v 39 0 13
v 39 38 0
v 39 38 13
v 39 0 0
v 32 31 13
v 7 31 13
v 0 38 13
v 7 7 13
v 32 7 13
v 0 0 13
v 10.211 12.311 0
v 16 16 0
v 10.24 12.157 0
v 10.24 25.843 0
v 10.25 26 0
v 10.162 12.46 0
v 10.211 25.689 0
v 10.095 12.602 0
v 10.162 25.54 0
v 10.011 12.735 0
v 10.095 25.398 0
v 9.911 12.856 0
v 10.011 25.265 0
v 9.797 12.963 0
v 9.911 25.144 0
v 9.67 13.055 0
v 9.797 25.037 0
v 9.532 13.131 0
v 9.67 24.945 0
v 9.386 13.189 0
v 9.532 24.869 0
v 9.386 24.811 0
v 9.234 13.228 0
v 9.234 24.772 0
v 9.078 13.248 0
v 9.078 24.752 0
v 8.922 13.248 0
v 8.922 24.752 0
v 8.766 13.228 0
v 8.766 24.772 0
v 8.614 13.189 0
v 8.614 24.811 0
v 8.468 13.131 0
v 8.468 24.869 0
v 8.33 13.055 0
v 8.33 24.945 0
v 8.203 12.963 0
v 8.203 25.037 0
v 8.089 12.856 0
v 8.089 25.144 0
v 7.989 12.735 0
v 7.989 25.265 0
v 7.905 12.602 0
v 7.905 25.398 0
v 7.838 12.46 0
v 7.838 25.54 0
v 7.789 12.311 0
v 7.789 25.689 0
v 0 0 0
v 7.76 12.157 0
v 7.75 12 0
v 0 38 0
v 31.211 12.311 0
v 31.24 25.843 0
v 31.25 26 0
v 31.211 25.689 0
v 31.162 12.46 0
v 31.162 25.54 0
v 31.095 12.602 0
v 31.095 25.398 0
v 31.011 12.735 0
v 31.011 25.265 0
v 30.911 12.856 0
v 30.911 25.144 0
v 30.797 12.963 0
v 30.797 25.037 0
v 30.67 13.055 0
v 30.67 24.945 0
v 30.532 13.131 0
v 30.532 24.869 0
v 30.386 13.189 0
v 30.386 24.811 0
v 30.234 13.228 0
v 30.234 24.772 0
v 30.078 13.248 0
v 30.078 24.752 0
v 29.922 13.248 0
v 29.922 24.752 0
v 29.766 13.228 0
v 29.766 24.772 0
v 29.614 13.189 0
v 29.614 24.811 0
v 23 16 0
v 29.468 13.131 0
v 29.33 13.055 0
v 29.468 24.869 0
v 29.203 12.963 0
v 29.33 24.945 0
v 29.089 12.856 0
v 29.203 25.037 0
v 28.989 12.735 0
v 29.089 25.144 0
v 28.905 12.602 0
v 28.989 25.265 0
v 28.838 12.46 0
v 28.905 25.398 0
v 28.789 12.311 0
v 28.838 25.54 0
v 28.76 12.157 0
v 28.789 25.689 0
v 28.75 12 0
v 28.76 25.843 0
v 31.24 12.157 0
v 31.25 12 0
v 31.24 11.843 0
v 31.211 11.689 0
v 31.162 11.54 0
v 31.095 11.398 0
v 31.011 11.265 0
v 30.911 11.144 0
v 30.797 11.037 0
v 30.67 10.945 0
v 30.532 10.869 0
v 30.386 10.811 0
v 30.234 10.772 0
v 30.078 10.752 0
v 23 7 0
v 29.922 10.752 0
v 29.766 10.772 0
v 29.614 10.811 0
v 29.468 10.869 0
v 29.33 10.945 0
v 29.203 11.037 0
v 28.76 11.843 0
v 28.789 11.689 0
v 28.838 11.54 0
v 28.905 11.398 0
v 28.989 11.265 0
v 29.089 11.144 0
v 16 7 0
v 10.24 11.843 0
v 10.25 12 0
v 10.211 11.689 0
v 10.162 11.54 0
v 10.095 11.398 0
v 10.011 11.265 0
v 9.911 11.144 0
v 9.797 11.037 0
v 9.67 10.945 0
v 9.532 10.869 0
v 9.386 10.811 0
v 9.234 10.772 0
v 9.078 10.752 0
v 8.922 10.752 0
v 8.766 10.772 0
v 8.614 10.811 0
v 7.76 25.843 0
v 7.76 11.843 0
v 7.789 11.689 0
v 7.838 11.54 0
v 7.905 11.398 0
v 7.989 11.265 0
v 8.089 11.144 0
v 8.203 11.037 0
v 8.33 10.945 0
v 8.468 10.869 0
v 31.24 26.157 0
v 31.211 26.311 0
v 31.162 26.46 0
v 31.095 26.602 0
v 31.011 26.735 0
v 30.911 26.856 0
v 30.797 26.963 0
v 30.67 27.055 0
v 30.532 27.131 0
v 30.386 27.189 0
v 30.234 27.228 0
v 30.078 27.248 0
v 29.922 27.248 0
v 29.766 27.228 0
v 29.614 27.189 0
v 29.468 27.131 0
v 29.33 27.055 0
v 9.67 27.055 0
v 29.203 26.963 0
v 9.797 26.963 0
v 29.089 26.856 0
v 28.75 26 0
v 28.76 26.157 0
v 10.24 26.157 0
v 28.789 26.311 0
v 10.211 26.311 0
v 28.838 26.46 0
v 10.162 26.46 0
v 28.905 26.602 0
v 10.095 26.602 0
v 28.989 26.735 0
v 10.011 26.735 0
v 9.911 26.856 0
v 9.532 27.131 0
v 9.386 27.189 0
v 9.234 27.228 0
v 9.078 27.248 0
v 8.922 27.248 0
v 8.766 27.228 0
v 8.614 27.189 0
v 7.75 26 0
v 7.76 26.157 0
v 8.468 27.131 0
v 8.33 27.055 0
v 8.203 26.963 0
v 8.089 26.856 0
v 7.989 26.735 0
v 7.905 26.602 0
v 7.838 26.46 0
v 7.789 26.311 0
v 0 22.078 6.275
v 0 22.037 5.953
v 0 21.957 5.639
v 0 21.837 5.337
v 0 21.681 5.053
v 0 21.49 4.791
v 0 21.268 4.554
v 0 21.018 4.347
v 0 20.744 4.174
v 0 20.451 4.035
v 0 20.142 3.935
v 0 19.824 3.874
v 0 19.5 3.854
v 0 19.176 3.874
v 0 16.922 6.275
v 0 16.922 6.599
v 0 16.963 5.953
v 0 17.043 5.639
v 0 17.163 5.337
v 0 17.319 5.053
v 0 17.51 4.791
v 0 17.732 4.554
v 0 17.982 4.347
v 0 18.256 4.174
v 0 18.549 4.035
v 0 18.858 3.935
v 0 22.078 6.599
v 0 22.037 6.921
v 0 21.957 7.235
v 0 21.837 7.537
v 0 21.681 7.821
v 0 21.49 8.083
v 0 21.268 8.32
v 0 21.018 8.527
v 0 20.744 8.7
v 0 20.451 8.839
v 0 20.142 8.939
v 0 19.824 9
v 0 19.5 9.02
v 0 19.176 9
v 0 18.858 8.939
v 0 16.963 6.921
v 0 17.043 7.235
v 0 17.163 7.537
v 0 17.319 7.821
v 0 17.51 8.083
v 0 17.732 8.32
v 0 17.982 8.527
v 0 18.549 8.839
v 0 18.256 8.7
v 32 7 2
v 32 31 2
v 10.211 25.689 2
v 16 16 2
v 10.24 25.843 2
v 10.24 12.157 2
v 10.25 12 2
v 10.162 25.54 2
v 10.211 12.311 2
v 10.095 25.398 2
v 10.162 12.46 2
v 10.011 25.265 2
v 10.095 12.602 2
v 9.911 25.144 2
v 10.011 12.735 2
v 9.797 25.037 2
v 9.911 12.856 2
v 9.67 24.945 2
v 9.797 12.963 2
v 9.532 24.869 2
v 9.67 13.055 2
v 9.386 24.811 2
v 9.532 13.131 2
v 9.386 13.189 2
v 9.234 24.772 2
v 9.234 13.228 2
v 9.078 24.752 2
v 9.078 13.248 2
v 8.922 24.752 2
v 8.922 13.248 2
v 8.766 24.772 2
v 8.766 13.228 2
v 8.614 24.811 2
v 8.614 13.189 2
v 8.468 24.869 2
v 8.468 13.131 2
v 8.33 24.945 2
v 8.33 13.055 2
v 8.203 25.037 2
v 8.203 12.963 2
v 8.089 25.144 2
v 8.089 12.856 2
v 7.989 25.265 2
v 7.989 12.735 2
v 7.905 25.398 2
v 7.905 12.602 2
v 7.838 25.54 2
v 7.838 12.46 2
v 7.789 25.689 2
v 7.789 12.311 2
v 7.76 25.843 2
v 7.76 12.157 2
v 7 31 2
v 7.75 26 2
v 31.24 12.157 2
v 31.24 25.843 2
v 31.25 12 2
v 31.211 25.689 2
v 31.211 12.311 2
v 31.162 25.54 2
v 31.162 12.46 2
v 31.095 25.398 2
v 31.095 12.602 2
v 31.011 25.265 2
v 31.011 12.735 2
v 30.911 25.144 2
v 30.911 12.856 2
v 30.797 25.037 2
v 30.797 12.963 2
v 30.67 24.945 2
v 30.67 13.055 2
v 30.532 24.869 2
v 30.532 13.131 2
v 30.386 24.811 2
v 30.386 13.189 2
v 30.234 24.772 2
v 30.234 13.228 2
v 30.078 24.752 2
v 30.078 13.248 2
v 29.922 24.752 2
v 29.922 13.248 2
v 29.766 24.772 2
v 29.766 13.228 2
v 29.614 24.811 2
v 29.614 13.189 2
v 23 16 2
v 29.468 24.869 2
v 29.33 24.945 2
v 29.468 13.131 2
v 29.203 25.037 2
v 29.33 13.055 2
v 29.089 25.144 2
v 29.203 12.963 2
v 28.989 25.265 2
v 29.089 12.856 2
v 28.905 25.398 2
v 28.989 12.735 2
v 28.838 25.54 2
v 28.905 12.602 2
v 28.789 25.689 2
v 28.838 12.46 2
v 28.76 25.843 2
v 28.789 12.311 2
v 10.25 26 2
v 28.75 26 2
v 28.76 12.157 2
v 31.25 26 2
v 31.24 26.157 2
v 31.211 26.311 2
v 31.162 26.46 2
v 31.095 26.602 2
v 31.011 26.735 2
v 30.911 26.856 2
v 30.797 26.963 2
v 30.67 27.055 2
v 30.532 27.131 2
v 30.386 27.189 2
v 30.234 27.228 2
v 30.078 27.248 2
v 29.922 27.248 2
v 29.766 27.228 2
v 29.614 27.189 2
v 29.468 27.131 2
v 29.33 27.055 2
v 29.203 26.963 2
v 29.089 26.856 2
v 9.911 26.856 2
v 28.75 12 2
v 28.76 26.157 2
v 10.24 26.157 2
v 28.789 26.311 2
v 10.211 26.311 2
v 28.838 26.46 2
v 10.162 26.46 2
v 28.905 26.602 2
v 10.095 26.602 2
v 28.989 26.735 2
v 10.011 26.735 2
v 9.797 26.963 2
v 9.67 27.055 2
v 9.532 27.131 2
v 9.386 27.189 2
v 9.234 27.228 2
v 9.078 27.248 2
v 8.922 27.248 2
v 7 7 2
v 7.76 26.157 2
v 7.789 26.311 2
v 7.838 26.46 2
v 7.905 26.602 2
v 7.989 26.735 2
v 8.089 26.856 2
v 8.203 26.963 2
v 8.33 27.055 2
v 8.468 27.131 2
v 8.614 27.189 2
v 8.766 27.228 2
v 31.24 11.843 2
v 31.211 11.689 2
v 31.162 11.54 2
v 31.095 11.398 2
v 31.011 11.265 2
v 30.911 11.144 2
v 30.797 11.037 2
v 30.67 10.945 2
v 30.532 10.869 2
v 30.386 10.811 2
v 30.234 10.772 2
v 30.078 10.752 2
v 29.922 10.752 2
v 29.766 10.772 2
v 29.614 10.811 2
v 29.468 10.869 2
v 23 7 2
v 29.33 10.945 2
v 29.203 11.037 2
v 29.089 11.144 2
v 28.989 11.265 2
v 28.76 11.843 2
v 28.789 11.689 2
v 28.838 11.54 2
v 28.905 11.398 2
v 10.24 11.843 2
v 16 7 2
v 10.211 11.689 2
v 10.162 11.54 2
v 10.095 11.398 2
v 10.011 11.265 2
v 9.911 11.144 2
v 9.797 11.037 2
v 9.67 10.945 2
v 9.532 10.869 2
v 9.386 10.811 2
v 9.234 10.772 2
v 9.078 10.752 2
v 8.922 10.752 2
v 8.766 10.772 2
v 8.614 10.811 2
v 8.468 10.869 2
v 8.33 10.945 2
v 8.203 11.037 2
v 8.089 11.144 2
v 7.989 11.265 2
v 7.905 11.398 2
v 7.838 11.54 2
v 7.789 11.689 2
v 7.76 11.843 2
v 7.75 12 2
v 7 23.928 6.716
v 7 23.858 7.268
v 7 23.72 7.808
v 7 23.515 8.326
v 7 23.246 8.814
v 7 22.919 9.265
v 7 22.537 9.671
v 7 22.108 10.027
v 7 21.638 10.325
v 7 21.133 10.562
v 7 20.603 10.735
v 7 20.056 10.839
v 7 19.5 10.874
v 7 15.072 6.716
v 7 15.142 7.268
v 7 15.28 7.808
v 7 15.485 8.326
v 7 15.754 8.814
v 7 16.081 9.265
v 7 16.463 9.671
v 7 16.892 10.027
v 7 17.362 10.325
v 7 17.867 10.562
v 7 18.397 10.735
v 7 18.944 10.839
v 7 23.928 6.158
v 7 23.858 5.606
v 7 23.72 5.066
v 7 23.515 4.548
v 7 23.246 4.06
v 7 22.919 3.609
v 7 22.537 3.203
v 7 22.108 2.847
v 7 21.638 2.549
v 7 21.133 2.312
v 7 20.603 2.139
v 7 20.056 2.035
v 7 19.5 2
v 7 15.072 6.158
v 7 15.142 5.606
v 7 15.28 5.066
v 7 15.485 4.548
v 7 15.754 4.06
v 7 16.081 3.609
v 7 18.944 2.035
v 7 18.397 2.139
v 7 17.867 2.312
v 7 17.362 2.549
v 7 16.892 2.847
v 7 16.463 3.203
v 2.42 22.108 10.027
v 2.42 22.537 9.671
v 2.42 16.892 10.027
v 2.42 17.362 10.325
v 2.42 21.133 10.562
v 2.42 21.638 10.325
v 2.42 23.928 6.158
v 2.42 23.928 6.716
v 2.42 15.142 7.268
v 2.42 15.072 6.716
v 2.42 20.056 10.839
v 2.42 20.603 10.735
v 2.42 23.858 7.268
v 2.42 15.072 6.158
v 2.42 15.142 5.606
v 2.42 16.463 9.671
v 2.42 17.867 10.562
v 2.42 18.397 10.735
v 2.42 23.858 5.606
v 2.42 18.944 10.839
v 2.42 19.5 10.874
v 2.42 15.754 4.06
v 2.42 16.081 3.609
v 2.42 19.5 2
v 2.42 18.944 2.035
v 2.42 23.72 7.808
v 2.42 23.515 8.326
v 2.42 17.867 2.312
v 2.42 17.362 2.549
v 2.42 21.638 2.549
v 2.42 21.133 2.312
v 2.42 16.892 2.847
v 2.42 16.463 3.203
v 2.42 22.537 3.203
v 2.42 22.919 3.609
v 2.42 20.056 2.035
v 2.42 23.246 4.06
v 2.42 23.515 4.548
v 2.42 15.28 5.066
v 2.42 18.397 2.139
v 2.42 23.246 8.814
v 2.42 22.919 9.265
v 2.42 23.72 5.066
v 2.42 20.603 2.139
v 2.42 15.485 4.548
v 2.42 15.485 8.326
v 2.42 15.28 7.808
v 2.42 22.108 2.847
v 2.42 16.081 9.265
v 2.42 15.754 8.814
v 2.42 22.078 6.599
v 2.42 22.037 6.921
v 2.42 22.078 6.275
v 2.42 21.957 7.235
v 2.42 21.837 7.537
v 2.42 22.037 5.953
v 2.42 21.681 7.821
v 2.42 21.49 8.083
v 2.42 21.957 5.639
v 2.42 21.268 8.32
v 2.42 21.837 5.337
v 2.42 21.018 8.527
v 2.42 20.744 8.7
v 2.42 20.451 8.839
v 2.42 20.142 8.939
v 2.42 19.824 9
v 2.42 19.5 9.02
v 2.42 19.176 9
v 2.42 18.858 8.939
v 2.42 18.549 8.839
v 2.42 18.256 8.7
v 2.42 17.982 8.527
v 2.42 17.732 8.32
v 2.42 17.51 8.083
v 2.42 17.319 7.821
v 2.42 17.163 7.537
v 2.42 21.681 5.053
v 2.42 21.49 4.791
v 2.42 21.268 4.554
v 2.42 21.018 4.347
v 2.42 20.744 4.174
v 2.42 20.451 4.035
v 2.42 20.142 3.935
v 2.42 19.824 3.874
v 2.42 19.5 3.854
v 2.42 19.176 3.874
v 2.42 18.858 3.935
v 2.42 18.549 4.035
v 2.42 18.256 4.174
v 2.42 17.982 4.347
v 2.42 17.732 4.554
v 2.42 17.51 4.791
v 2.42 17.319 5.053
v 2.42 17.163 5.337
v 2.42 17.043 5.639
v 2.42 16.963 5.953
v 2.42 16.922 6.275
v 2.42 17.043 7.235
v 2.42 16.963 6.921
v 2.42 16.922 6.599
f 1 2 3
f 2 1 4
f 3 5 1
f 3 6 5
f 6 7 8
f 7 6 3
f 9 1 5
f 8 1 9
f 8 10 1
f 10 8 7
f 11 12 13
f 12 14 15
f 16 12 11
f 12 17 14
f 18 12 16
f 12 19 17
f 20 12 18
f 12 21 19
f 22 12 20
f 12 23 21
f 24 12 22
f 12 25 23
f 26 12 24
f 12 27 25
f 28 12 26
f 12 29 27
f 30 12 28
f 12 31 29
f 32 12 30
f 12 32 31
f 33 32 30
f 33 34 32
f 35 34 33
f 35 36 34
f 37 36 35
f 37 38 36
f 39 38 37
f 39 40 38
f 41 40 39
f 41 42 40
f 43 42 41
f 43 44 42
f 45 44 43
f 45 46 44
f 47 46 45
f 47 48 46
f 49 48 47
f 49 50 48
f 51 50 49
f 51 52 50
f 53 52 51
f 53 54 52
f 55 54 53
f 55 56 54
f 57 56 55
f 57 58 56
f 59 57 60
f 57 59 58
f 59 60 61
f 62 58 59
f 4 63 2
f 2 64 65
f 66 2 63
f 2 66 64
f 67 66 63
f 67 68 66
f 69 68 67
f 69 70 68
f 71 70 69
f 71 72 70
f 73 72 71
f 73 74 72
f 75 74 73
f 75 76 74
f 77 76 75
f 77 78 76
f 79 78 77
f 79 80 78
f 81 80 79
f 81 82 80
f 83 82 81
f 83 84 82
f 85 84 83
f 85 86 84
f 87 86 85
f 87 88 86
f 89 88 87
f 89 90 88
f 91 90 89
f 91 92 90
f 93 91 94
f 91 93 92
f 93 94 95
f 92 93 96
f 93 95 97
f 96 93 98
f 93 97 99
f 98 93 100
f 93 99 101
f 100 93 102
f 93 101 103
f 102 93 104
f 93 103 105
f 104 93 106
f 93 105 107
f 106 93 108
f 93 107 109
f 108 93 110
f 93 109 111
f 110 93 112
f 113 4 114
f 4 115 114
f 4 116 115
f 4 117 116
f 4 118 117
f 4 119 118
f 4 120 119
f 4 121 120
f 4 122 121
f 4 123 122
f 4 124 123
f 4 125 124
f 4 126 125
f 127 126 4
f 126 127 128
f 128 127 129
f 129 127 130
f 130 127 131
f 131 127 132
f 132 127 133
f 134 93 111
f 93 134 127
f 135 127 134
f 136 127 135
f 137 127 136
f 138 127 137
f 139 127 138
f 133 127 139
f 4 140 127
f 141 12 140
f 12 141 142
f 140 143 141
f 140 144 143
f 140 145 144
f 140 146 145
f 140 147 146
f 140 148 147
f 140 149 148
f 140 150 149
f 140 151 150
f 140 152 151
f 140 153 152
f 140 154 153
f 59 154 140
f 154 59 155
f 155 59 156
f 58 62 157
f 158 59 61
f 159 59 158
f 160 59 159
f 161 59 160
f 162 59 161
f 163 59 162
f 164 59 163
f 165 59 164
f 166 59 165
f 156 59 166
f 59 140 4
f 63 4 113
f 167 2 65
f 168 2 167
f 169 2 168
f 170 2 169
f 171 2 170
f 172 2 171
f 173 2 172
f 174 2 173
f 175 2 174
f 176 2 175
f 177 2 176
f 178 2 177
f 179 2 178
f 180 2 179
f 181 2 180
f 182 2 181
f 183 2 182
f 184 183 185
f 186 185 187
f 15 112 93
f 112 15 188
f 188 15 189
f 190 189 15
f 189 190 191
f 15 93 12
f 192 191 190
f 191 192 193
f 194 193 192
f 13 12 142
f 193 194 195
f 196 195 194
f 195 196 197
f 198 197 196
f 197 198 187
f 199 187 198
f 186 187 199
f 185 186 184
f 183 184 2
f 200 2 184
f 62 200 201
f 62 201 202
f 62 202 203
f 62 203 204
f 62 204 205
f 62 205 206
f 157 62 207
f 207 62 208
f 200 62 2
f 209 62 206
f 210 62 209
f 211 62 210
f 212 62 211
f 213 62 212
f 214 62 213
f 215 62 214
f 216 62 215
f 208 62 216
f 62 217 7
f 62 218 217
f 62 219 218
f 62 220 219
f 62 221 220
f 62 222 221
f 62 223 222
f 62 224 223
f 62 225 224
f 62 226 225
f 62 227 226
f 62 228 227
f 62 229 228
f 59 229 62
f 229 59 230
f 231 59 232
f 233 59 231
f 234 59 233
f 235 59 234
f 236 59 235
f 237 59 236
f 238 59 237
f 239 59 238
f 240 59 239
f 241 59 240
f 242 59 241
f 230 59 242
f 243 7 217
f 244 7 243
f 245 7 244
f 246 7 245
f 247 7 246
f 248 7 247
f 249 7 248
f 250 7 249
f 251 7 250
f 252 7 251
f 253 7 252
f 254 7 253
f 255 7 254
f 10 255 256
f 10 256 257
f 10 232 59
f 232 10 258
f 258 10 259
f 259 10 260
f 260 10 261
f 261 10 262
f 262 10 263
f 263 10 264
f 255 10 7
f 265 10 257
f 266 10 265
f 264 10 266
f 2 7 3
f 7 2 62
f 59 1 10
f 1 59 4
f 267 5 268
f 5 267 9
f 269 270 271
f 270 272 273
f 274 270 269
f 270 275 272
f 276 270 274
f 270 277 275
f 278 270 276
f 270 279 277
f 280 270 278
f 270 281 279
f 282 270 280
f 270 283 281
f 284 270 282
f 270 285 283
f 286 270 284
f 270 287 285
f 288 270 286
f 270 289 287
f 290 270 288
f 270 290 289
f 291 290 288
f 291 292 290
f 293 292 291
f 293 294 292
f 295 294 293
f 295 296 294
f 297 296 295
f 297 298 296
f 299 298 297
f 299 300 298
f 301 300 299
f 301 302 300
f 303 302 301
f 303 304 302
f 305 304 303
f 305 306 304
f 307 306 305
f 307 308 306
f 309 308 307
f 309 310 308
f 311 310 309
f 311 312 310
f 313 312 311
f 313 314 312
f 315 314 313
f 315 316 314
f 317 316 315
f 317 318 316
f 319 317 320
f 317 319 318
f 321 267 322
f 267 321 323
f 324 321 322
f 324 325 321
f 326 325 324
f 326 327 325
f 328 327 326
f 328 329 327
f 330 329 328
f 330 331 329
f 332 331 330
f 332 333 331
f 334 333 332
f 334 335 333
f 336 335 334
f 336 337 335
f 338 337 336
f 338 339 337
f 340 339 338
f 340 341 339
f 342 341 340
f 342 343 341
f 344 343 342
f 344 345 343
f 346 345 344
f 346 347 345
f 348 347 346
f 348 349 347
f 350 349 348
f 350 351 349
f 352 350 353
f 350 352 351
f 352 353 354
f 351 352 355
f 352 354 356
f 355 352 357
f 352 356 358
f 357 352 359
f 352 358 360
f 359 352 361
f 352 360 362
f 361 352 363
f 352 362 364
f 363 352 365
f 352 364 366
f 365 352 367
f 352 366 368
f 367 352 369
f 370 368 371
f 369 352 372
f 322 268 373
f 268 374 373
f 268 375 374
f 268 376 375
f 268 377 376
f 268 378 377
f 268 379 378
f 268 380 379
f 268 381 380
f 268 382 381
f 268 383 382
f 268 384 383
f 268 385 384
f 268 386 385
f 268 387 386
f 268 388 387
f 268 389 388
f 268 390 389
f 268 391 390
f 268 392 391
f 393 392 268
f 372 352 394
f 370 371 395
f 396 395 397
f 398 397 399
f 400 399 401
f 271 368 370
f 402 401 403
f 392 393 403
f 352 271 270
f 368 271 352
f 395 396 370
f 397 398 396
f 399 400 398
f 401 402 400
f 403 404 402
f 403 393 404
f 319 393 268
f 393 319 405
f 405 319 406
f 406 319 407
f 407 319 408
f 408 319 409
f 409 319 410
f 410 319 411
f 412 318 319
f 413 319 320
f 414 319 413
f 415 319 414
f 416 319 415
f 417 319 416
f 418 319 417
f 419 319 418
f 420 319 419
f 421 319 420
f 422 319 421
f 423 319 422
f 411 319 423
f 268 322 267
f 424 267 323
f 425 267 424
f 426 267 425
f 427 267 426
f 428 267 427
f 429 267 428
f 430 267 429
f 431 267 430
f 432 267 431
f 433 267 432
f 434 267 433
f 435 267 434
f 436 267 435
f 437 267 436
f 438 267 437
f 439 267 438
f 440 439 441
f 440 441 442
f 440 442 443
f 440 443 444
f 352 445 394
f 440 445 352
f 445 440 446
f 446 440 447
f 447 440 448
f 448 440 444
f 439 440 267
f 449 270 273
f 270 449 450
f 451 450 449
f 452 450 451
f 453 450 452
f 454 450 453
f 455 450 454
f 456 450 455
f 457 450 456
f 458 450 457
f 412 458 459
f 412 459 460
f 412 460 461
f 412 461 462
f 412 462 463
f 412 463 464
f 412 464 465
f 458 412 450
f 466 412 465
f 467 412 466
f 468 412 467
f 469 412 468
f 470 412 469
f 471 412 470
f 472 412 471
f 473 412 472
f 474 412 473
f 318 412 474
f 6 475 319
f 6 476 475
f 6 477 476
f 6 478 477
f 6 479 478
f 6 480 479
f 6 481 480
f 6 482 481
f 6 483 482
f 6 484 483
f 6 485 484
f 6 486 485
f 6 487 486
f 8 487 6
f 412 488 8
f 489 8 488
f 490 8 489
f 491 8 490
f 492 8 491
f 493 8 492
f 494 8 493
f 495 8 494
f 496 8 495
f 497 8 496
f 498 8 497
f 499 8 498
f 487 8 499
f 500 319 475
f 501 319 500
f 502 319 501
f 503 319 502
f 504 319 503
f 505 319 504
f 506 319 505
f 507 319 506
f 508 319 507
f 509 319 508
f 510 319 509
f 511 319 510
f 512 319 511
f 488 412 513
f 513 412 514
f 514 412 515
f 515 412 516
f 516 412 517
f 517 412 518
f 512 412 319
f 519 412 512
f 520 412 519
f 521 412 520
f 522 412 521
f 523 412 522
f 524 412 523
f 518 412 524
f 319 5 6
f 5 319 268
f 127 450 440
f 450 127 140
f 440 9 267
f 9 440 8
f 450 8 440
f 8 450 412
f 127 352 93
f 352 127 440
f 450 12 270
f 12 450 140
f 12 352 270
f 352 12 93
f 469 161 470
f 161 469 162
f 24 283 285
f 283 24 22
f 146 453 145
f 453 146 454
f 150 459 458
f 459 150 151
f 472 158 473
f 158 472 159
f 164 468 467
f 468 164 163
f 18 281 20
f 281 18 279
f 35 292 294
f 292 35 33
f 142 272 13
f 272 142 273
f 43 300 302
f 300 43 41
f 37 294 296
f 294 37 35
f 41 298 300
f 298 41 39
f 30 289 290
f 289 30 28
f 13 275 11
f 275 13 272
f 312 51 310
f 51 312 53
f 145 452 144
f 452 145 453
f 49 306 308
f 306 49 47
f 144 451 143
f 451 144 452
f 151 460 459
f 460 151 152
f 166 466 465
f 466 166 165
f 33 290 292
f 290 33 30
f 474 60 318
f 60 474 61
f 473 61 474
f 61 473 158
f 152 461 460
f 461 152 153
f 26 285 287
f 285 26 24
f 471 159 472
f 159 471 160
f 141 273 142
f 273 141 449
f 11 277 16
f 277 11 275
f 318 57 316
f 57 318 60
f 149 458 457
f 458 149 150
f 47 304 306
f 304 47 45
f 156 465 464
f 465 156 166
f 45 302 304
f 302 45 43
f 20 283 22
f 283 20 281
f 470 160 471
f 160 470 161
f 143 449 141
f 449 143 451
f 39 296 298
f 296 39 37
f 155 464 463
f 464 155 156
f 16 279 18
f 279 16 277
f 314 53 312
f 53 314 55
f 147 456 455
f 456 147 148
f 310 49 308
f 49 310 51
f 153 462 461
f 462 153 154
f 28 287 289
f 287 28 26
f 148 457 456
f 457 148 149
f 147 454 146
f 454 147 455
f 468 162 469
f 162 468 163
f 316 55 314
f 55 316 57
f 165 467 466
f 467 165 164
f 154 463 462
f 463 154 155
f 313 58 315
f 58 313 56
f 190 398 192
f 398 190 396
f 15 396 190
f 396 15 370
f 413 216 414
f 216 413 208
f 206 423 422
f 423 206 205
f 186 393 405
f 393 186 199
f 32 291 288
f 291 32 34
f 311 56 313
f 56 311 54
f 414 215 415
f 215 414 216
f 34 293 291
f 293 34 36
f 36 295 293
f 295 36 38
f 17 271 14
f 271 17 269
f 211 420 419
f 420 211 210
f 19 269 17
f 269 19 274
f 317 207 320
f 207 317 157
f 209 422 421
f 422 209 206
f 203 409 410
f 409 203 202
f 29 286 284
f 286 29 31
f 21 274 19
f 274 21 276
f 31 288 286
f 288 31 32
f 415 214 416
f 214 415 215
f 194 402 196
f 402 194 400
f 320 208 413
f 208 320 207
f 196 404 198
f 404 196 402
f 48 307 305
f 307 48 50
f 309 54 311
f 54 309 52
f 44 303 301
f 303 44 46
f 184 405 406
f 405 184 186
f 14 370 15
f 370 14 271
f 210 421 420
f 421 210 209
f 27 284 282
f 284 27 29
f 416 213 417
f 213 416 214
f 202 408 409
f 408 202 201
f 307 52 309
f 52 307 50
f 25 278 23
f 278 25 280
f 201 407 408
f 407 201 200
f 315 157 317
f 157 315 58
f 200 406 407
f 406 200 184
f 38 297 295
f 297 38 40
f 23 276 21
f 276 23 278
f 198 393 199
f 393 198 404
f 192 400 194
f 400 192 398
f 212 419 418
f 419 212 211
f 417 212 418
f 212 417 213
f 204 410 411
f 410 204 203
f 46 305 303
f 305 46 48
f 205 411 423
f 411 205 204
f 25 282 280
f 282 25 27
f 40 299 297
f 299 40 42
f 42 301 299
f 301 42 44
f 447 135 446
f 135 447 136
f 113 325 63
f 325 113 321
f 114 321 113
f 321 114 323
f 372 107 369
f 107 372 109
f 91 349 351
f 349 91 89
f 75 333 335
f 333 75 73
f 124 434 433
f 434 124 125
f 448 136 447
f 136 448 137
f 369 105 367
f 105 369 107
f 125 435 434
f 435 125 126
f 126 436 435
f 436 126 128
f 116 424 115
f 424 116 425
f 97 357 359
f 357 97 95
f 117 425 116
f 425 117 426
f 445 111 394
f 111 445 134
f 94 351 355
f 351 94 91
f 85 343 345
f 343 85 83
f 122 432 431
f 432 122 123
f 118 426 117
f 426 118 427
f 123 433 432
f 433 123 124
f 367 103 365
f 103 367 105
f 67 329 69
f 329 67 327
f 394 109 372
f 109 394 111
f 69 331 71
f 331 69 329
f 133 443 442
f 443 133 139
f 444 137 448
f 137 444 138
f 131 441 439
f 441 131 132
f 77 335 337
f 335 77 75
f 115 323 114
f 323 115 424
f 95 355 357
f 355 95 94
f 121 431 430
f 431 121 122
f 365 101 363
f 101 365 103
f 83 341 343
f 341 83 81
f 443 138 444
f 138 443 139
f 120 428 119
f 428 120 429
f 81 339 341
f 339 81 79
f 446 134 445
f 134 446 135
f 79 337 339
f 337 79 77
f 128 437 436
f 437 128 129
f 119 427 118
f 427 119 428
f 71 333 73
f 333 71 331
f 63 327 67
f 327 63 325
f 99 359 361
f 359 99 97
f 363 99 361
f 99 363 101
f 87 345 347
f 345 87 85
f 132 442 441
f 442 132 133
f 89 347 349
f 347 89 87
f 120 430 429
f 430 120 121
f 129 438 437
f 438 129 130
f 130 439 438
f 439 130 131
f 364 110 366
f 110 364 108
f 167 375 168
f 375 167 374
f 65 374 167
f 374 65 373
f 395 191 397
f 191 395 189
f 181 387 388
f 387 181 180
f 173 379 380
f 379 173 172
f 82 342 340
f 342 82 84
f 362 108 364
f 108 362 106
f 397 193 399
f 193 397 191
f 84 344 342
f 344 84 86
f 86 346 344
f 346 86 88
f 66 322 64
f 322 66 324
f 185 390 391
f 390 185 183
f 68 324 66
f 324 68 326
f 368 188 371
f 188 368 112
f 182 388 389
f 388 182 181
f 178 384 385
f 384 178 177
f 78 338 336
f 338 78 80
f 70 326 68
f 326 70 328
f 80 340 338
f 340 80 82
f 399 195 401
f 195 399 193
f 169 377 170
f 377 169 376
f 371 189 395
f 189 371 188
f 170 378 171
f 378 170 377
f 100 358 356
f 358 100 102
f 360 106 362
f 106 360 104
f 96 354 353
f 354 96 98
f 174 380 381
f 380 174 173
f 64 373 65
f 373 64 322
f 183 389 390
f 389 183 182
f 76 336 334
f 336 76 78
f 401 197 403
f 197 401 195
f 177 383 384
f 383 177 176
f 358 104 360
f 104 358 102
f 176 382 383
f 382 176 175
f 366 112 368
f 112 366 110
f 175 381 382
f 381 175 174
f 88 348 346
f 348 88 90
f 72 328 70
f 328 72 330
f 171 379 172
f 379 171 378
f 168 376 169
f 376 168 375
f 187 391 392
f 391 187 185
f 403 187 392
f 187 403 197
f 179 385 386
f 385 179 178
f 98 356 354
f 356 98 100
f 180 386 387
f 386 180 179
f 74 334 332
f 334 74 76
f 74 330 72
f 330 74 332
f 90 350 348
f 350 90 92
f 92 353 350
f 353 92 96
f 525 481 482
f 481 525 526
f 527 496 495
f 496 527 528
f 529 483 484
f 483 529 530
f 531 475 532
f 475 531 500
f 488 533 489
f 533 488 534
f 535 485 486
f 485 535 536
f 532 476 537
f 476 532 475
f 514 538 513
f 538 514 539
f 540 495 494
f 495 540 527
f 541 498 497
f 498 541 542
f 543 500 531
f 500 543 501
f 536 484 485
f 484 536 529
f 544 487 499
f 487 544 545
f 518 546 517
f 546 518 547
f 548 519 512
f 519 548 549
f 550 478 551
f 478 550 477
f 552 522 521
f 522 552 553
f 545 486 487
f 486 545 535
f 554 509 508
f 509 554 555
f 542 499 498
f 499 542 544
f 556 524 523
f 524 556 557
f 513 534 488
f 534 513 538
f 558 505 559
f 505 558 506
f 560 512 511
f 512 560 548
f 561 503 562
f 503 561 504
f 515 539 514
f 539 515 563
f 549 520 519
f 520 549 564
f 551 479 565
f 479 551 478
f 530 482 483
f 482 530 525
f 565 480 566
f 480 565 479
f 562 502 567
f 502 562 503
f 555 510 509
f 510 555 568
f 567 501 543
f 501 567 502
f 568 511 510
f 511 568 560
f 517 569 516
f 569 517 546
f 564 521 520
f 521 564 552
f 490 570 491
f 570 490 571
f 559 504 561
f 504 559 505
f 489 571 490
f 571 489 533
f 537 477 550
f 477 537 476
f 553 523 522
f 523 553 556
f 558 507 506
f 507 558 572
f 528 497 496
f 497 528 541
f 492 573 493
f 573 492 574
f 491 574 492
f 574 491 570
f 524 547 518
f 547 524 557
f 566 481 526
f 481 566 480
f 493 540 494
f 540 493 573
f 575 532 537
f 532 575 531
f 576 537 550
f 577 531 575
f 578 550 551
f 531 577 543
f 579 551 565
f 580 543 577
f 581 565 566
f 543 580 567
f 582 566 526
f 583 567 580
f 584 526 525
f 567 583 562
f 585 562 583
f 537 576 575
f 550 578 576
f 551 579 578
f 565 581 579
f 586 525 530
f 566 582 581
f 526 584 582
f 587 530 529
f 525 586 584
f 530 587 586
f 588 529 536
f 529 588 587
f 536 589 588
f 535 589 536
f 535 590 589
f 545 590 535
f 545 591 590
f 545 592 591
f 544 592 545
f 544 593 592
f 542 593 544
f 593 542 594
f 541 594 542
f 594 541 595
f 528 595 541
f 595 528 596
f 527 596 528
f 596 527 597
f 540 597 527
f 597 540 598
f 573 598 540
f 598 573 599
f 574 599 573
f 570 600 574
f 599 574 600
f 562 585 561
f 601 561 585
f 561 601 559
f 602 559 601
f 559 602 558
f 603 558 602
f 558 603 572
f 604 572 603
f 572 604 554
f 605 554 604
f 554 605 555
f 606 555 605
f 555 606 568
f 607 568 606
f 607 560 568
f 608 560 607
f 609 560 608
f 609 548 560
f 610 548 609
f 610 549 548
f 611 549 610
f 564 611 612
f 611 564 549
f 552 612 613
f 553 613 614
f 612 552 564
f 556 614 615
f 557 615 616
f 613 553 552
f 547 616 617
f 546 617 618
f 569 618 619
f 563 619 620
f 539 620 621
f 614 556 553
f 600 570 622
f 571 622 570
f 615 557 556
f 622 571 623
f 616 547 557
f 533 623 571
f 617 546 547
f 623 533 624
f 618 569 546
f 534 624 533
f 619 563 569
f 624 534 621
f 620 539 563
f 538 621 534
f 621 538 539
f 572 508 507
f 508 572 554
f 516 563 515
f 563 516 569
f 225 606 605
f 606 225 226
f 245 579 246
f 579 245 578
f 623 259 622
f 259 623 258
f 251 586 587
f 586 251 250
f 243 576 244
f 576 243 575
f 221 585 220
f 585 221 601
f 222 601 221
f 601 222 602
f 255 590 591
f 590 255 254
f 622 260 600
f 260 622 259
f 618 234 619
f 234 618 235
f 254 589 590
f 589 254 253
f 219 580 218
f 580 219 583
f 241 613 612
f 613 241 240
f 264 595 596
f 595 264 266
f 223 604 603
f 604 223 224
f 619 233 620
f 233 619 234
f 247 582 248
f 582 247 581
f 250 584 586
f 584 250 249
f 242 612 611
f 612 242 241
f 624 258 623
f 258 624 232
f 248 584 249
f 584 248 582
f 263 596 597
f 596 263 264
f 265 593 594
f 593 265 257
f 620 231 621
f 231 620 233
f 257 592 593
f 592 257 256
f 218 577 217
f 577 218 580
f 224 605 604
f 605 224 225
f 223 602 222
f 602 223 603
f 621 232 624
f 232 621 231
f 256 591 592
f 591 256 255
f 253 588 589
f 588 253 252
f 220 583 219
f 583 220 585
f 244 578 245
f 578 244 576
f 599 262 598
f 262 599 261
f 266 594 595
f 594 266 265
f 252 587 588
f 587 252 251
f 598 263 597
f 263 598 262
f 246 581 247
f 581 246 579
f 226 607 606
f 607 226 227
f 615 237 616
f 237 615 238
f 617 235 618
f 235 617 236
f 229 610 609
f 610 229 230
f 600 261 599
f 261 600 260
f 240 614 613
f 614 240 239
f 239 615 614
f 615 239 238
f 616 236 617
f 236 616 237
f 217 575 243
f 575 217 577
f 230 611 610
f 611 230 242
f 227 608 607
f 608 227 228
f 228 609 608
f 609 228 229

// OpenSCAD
// Parameters for Raspberry Pi Camera V2.1
camera_width = 25;
camera_height = 24;
camera_thickness = 9+2;

// Enclosure Parameters
enclosure_wall_thickness = 7;
enclosure_top_thickness = 2;

// Camera mounting hole parameters
hole_diameter = 2.5;
hole_spacing_x = 21;
hole_spacing_y = 14;

// Parameters for #8-32 Hex Socket Head Bolt (simplified, without threads or hex socket)
bolt_diameter = 4.166; // 0.164 inch
head_diameter = 7.874; // 5/16 inch
head_height = 5.08; // Example height
shaft_length = 20; // Example length
thru = 1; // Extra diameter for thru hole clearance

module simplified_head_bolt() {
    // Create the bolt head
    cylinder(d = head_diameter+thru, h = head_height, $fn = 50);

    // Create the bolt shaft
    translate([0, 0, head_height]) {
        cylinder(d = bolt_diameter+thru, h = shaft_length, $fn = 50);
    }
}

//vertical translation shift for holes
vshift = -enclosure_top_thickness;

module raspberry_pi_camera_enclosure() {
    // Main enclosure
    difference() {
        cube([camera_width + 2 * enclosure_wall_thickness, camera_height + 2 * enclosure_wall_thickness, camera_thickness + enclosure_top_thickness]);
        translate([enclosure_wall_thickness, enclosure_wall_thickness, enclosure_top_thickness]) {
            cube([camera_width, camera_height, camera_thickness + 1]);
        }
    
    // Camera hole
    translate([enclosure_wall_thickness + (camera_width/2) - 3.5, enclosure_wall_thickness, enclosure_top_thickness - 0.5+vshift]) {
        cube([7, 9, 0.5-2*vshift ]);
    }
    }
}

module camera_mounting_holes() {
    for (x=[-1, 1], y=[-1, 1]) {
        translate([(camera_width + 2 * enclosure_wall_thickness) / 2 + x * hole_spacing_x / 2, (camera_height + 2 * enclosure_wall_thickness) / 2 + y * hole_spacing_y / 2, enclosure_top_thickness+2*vshift]) {
            cylinder(d = hole_diameter, h = 2 * enclosure_wall_thickness-vshift, $fn = 50);
        }
    }
}

module bolt_hole() {
    translate([enclosure_wall_thickness+.5,camera_width/2+      enclosure_wall_thickness,enclosure_top_thickness+(head_diameter+thru)/2]){
        rotate([0,270,0]){
            simplified_head_bolt();
        }
    }
}

 //Combine enclosure and mounting holes
difference() {
    raspberry_pi_camera_enclosure();
    camera_mounting_holes();
    bolt_hole();
}
